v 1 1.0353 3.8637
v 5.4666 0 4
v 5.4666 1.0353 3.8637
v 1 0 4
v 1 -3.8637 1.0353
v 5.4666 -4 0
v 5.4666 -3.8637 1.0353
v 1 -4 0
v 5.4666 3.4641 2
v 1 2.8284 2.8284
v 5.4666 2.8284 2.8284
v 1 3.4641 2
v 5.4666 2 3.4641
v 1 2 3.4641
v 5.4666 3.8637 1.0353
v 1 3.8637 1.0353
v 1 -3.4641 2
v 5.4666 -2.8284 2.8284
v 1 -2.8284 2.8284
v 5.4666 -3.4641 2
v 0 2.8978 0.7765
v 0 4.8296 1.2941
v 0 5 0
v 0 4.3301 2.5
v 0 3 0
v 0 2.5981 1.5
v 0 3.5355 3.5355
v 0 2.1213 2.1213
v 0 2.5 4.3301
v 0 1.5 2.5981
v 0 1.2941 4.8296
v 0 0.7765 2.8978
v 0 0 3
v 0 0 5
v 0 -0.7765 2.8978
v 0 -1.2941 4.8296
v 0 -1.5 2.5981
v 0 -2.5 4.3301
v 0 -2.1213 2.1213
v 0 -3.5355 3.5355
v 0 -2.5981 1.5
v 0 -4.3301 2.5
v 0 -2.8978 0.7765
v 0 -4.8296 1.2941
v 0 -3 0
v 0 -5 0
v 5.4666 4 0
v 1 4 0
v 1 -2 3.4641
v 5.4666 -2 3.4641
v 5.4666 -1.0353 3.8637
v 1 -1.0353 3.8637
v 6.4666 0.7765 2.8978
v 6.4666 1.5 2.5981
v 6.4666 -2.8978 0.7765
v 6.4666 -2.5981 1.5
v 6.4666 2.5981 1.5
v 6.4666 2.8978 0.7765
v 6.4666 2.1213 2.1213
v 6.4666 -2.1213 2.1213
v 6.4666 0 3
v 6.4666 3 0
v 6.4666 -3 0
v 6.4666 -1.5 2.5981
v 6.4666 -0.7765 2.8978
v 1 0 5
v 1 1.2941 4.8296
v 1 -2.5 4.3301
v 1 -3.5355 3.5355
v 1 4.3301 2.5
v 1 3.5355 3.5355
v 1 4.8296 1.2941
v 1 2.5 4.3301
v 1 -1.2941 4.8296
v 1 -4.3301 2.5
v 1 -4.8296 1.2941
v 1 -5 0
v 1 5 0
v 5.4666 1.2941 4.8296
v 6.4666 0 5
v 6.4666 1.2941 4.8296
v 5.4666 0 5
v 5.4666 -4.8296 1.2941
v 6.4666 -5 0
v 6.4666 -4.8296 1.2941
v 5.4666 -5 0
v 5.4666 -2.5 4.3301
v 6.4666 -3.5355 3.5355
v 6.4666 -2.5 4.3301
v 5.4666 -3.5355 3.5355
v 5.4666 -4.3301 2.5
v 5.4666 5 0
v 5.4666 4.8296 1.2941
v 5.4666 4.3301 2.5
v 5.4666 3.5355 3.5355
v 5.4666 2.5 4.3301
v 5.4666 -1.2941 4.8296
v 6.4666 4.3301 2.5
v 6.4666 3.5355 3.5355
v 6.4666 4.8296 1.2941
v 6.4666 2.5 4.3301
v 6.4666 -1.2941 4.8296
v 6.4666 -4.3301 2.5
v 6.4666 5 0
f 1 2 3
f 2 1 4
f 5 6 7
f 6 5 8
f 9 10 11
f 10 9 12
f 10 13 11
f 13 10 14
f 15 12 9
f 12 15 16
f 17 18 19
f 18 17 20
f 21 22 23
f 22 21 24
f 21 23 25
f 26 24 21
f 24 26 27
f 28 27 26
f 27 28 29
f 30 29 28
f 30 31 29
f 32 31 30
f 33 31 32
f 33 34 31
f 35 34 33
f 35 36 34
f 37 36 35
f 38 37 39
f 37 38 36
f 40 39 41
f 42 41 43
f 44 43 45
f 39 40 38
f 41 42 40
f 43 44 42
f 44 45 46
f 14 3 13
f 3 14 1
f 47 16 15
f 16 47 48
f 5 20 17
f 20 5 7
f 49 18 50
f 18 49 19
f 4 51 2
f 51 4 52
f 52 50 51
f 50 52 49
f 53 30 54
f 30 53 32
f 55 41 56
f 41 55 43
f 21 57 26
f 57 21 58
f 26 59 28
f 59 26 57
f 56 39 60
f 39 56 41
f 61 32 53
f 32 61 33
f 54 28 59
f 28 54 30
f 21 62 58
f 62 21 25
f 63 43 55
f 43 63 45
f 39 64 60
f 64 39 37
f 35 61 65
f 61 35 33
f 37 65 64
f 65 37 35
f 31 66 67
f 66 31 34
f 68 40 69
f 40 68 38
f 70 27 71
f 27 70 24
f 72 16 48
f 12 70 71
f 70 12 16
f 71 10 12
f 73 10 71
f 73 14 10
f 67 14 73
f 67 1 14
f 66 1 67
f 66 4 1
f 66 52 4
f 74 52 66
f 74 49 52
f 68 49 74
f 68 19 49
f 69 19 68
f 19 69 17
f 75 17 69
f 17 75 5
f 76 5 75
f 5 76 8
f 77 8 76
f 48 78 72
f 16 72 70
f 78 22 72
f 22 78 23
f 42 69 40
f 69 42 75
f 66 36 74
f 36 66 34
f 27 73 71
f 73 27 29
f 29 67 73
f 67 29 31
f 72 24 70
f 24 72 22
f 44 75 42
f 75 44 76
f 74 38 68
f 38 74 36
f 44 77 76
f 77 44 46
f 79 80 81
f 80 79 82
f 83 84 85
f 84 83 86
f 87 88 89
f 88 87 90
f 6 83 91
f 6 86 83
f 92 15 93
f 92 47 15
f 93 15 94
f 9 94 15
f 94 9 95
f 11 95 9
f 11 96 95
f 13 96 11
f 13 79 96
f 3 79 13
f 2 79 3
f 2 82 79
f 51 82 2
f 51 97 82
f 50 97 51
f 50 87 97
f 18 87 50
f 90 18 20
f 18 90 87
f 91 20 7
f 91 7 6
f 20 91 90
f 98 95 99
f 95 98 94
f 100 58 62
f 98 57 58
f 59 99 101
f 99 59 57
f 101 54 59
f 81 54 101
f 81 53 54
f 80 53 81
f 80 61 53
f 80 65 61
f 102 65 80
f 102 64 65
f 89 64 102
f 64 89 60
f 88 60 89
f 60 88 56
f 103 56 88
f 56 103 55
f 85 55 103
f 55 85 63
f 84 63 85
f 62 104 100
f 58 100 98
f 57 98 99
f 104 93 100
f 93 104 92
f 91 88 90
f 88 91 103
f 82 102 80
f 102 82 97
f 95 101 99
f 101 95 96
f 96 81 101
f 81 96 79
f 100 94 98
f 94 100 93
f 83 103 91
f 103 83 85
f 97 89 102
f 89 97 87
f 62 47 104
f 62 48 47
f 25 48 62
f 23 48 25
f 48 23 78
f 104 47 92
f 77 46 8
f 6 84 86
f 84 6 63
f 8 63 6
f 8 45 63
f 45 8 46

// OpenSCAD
// file: ../build_environments.scad
// build_environments.scad: modules to build level sections
//

module pool(diameter=10.0, wall_height=2.0, step_width=3.0, connections=[])
{
    difference() {
        union() {
        difference() {
            cylinder(h=0.5,r1=diameter+step_width,r2=diameter+step_width,$fn=48);
            translate([0,0,-0.1])
                cylinder(h=0.7,r1=diameter,r2=diameter,$fn=48);
        }
        difference() {
            cylinder(h=wall_height,r1=diameter+step_width+1.0,r2=diameter+step_width+1.0,$fn=48);
            translate([0,0,-0.1])
                cylinder(h=wall_height+0.2,r1=diameter+step_width,r2=diameter+step_width,$fn=48);
        }
        }
    
        for (c = connections)
        {
            rotate([0,90,0]) {
                angle = atan2(c[1],c[0]);
                rotate([-angle,0,0]) {
                    cylinder(h=diameter+5.0,r1=c[2],r2=c[2],$fn=48);
                }
            }
        }
    }
}

module straight(length=10.0, width=2.0, dy1=0.0, dy2=0.0, dz=0.0)
{
    dims = [0, 0, 0, 0, 0, (dz/length)];
    matrix = [
        [ 1, dims[0], dims[1], 0 ],
        [ dims[2], 1, dims[4], 0 ],
        [ dims[5], dims[3], 1, 0 ],
        [ 0, 0, 0, 1 ]
    ];
    multmatrix(matrix)
    difference() {
        translate([dy1,0,0])
        union() {
            rotate([0,90,0]) {
                difference() {
                    cylinder(h=(length-dy1-dy2),r1=width+1.0,r2=width+1.0,$fn=24);
                    translate([0,0,-0.1])
                        cylinder(h=(length-dy1-dy2+0.2),r1=width,r2=width,$fn=24);
                }
                difference() {
                    cylinder(h=1.0,r1=width+2.0,r2=width+2.0,$fn=24);
                    translate([0,0,-0.1])
                        cylinder(h=1.2,r1=width,r2=width,$fn=24);
                }
                translate([0,0,(length-dy1-dy2)-1.0]) {
                    difference() {
                        cylinder(h=1.0,r1=width+2.0,r2=width+2.0,$fn=24);
                        translate([0,0,-0.1])
                            cylinder(h=1.2,r1=width,r2=width,$fn=24);
                    }
                }
            }
        }
        translate([0,0,-(2*width+4.0)/2])
            cube([3*length,3*length,2*width+4.0],center=true);
    }
}

module curve(p0=[0,0], center=[0,0], dir=1, angle=0.0, width=2.0)
{
    radius = sqrt((p0[0]-center[0])*(p0[0]-center[0]) + (p0[1]-center[1])*(p0[1]-center[1]));
    if (dir == 0) {
        difference() {
            rotate([0,0,-90])
            difference() {
                rotate_extrude(angle = angle, convexity = 10, $fn=32)
                    translate([radius, 0, 0])
                        circle(r = width+1.0,$fn=24);
                rotate([0,0,-1.0])
                    rotate_extrude(angle = angle+2.0, convexity = 10, $fn=32)
                        translate([radius, 0, 0])
                            circle(r = width,$fn=24);
            }
            translate([0,0,-(2*width+4.0)/2])
                cube([5*radius,5*radius,2*width+4.0],center=true);
        }
    }
    else {
        difference() {
            rotate([0,0,90])
            difference() {
                rotate_extrude(angle = -angle, convexity = 10, $fn=32)
                    translate([radius, 0, 0])
                        circle(r = width+1.0,$fn=24);
                rotate([0,0,1.0])
                    rotate_extrude(angle = -angle-2.0, convexity = 10, $fn=32)
                        translate([radius, 0, 0])
                            circle(r = width,$fn=24);
            }
            translate([0,0,-(2*width+4.0)/2])
                cube([5*radius,5*radius,2*width+4.0],center=true);
        }
    }

}

// test pool
//pool(diameter=12.0000, wall_height=3.0000, step_width=3.0000, connections=[[0.0000,-26.0000,2.0000], [23.6074,0.0000,2.0000]]);

// test straight, slope
//straight(length=26.0000, width=2.0000, dy1=11.8322, dy2=6.7082, dz=0.0000);
//straight(length=29.1549, width=12.0000, dy1=0.0000, dy2=0.0000, dz=-15.0000);

// test curve
//curve(p0=[23.6074, 0.0000], center=[23.6074, 5.0000], dir=0, angle=60.1011, width=2.0000);
//curve(p0=[33.6426, 12.4219], center=[37.9771, 9.9295], dir=1, angle=120.4627, width=2.0000);
// main file
use <../build_environments.scad>;
straight(length=6.4666, width=3.0000, dy1=0.0000, dy2=0.0000, dz=0.0000);
